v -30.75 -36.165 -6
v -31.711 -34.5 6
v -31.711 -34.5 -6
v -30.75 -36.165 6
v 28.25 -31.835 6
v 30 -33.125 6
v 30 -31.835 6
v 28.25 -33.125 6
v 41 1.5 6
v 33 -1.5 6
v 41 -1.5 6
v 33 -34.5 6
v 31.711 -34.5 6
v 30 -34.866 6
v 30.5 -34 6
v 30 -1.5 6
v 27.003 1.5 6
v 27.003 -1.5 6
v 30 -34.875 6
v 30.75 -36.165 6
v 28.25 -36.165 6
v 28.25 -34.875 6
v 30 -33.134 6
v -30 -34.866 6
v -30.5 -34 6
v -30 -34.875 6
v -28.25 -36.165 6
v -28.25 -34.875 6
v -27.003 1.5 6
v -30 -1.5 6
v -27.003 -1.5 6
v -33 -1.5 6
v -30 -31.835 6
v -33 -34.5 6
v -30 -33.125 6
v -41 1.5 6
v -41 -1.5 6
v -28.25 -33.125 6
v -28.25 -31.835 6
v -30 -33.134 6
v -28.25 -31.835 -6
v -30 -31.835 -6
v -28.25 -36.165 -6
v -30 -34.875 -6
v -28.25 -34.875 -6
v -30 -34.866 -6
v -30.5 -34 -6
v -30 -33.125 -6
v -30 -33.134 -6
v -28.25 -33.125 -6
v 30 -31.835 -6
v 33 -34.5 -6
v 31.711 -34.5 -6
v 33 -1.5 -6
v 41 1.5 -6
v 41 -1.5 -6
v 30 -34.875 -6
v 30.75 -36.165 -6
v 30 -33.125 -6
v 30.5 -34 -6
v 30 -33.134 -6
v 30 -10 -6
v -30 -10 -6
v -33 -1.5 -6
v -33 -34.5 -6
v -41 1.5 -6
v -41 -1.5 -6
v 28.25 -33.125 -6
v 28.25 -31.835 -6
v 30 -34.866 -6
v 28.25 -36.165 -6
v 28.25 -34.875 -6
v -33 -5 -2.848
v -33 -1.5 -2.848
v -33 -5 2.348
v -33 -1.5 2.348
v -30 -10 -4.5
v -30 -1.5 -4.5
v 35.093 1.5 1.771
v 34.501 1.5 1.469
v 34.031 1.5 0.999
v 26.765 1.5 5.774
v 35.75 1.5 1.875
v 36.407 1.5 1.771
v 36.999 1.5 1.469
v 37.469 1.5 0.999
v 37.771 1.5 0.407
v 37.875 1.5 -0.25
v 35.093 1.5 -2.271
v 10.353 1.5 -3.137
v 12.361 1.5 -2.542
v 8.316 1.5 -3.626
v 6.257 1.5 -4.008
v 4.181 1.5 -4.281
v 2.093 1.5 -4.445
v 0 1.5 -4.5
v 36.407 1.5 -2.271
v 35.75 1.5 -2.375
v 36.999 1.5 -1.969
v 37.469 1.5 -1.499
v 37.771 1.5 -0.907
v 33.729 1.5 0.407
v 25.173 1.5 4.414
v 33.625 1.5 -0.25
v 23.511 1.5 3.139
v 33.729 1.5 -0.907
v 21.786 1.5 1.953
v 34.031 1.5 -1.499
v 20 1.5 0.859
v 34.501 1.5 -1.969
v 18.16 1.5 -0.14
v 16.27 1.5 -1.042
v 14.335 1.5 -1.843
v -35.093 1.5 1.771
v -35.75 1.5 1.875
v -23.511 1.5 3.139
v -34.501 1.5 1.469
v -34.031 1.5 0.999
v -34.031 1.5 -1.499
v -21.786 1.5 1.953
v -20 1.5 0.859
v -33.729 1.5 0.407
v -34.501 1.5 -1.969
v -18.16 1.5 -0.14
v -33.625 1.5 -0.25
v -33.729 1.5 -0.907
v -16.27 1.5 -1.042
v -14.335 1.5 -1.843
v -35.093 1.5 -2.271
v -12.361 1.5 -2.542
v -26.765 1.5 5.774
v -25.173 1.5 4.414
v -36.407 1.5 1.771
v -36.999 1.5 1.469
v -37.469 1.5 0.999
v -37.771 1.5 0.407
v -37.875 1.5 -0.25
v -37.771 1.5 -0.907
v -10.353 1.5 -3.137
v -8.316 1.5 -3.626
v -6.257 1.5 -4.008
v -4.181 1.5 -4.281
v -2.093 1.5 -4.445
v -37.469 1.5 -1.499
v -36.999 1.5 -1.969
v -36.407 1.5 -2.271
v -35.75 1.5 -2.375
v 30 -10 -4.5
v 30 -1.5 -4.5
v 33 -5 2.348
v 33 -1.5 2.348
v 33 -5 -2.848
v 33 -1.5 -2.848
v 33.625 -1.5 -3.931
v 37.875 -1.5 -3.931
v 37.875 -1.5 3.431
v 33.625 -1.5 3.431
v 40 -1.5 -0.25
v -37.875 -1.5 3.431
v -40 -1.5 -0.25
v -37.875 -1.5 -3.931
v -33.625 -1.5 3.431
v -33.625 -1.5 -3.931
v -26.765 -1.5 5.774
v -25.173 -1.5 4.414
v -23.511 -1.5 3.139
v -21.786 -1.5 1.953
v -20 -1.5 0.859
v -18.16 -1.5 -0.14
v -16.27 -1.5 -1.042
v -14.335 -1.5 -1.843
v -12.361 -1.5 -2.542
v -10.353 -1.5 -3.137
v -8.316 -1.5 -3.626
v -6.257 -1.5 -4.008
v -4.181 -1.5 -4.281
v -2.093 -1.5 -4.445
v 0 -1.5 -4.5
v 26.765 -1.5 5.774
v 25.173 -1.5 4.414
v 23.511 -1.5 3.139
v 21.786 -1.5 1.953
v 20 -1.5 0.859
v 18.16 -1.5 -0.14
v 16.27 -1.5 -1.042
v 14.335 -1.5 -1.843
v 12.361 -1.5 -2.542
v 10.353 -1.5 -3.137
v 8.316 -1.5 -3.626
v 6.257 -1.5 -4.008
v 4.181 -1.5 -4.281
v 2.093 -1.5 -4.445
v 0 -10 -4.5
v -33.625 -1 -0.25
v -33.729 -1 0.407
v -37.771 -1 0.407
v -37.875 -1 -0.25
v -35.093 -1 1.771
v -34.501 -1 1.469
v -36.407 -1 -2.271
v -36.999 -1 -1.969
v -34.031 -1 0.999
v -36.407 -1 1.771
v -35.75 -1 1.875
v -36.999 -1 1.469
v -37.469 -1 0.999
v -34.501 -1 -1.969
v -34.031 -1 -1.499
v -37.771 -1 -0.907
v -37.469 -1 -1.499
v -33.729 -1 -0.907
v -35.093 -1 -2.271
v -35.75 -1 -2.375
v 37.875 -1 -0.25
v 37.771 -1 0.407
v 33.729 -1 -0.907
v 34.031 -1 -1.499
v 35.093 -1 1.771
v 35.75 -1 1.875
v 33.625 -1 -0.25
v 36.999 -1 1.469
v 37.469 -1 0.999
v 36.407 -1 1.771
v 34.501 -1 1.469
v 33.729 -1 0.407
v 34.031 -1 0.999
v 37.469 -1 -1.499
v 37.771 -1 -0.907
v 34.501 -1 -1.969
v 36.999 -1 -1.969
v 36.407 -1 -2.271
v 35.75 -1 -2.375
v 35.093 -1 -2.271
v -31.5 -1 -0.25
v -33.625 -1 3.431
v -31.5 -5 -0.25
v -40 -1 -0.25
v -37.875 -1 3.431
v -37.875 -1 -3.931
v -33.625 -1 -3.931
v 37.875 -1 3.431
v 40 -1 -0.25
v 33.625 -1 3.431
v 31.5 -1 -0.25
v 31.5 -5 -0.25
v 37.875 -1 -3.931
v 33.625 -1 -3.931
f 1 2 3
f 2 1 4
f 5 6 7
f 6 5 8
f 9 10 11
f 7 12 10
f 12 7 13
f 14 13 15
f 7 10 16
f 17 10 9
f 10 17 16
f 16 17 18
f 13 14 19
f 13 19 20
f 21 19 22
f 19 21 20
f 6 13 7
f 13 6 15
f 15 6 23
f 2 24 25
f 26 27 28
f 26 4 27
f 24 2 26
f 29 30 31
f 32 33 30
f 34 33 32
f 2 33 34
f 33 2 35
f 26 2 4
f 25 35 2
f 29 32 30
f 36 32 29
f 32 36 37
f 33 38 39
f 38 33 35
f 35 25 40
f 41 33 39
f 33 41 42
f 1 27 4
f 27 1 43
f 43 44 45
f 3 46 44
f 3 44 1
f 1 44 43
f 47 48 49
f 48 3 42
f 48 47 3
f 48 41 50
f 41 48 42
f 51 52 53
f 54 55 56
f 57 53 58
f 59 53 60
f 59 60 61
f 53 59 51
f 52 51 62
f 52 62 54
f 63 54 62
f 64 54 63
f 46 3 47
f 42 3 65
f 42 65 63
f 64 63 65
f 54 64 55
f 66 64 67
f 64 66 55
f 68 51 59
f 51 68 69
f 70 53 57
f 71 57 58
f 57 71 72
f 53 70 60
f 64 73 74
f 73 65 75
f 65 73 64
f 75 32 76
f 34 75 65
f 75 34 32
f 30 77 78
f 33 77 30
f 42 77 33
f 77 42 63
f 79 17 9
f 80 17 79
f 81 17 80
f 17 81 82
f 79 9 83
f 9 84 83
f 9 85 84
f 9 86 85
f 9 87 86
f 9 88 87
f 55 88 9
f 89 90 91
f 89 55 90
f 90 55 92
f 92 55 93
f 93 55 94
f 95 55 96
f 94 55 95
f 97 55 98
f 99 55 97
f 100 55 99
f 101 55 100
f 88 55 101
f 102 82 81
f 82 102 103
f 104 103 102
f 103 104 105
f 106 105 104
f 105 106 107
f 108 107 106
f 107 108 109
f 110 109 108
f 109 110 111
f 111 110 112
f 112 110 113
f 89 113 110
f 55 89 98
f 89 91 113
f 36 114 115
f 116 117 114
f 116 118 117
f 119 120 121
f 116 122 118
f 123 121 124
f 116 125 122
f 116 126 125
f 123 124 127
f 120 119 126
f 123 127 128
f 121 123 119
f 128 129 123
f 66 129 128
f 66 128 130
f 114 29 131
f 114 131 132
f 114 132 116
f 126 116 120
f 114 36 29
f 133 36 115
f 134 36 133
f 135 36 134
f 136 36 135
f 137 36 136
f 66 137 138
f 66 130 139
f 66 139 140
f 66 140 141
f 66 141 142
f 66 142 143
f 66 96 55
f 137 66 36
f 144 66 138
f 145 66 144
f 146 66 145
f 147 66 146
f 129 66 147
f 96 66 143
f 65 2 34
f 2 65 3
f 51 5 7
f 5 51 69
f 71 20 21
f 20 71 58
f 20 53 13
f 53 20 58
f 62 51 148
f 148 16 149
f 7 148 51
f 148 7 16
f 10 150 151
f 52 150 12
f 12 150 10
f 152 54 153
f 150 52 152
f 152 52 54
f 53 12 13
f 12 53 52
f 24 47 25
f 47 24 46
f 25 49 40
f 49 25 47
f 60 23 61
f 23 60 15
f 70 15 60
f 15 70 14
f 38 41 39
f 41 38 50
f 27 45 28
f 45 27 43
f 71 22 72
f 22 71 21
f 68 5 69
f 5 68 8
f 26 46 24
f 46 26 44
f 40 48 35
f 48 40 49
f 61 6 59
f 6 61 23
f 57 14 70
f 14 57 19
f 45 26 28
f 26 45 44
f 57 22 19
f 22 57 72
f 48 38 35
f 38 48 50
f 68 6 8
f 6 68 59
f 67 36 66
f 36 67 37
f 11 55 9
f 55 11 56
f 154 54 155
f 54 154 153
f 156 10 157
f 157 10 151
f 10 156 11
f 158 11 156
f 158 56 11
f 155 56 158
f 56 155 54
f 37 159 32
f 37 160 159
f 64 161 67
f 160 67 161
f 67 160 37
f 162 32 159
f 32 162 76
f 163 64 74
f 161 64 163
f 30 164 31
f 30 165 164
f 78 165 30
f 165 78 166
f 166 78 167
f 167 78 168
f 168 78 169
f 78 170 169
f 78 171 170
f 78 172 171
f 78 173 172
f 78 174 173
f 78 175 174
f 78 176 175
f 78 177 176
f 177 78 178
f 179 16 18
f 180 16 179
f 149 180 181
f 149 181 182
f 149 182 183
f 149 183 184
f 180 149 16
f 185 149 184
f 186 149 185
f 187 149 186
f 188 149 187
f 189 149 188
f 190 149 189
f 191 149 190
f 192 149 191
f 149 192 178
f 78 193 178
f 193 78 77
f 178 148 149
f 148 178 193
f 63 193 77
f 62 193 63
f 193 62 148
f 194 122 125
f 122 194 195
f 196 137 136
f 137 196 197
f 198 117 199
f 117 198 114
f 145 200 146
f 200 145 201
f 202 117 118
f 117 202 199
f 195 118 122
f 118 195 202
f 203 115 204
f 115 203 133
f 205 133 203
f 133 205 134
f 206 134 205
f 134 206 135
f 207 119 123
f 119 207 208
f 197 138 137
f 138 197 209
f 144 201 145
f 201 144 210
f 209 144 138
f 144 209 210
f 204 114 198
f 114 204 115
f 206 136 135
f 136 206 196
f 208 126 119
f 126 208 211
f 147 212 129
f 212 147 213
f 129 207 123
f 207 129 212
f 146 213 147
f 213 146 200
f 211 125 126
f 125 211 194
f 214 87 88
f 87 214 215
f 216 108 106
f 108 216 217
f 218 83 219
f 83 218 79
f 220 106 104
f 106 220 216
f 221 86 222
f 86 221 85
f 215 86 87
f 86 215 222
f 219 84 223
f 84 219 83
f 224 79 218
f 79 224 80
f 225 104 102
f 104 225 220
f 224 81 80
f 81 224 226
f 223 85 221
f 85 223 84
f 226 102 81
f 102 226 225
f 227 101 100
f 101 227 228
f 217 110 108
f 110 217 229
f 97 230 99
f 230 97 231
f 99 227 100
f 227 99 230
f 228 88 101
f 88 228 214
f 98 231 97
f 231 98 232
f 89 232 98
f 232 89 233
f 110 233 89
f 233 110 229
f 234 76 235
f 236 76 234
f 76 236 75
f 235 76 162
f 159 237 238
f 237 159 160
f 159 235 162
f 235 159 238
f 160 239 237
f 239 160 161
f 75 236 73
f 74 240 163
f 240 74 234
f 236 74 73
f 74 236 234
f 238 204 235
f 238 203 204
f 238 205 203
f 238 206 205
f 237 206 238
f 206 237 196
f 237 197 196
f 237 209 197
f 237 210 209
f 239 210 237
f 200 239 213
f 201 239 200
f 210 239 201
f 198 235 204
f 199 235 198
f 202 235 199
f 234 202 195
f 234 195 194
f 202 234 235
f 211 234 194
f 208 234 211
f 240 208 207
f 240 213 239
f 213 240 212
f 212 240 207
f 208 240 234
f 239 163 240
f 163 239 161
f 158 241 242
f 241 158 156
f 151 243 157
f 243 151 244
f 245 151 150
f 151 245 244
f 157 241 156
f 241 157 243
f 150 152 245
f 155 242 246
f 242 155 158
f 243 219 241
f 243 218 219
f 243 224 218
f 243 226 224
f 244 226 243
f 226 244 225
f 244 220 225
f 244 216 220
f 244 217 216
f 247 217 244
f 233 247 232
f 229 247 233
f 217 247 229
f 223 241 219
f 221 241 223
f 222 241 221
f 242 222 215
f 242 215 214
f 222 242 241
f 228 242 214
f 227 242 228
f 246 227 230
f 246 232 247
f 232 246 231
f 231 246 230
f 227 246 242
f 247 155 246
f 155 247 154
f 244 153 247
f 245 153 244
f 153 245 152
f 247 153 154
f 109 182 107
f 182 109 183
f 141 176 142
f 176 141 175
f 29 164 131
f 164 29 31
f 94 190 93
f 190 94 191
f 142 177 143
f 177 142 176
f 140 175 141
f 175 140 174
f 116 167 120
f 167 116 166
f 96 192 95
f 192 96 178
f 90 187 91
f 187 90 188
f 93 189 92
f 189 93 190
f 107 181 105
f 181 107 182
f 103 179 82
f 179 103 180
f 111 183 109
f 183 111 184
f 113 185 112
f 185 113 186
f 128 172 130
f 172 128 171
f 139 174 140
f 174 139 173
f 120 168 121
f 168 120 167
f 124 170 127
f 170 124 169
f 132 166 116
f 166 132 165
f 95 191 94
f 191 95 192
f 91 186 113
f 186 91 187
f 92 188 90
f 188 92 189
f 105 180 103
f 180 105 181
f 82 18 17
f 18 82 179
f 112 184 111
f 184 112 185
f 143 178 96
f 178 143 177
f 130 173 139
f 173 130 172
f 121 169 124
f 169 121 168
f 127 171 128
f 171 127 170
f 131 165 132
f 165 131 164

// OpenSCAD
// MOAB - MOther of All fan Brackets
// Design by Marius Gheorghescu, October 2013.
// Update log
// November 5th 2013: 
//  - fan cutout (and the screw holes) can be removed entirely now to produce spacers or PCB feet 
//  - hex nuts resize with screw size (need to vealidate in practice)
//  - cross-brace is configurable and can also be removed


// Typical values 40, 50, 60, 80. Set to 0 to not have a fan cutout.
fan_size = 80;

// Distance between two fan holes. Typical values: 32.00 for 40mm fan, 40.00 for 50mm fan, 50.00 for 60mm fan, 71.50 for 80mm fan, 105.00 for 120mm fan. Set to value larger than fan size to not have any screw holes
fan_hole_spacing = 71.5;

// Use 3.25mm for M3, 4.25mm for M4 and so on
screw_diameter = 4.25;

// width of the PCB. Common values: 60mm for RAMPS, 53.5mm for Arduino, 56mm for Raspberry Pi
pcb_width = 60.0;

// distance from bottom of the fan to PCB. Recommended value for RAMPS fuse clearance: 35mm
bracket_height = 36;

// how long the bracket needs to be, typically 10mm for mini brackets, or close to fan size for full brackets
bracket_length = 12;

// typically 2-4mm
bracket_thickness = 3.0;

// how tall is the cross brace that addds additional strength to the bracket, set to 0 to not have one
cross_bracket = 10;

/* [Hidden] */

// how much to go over the PCB
lip_size = 1.75;

// effective width of the bracket at the top
bracket_width = max(pcb_width, fan_size - 4);

module legs()
{

    difference() {
        union() {

            // left clip
            color([0,0,.5])
            translate([-pcb_width/2 + .5, -bracket_height + 2, 0])
                rotate([0, 0, 180]) 
                    cylinder(r=2.5, h=bracket_length, $fn=6, center=true);

            // left leg
            color([0,0,1])
            translate([-pcb_width/2 - bracket_thickness, -bracket_height + bracket_thickness/2, -bracket_length/2])
                cube([bracket_thickness, bracket_height, bracket_length]);


            // right clip
            color([0,0,.5])
            translate([pcb_width/2 - .5, -bracket_height + 2, 0])
                 rotate([0, 0, 180]) 
                     cylinder(r=2.5, h=bracket_length, $fn=6, center=true);

            // right leg
            color([0,0,1])
           translate([pcb_width/2 , -bracket_height + bracket_thickness/2, -bracket_length/2])
                cube([bracket_thickness, bracket_height, bracket_length]);

        }

        // left cutout
       translate([-pcb_width/2 + .5, -bracket_height + 2, 0])
            rotate([0, 0, 180]) 
                cylinder(r=1, h=bracket_length + 0.1, $fn=6, center=true);

        // right cutout
       translate([pcb_width/2 - .5, -bracket_height + 2, 0])
            cylinder(r=1, h=bracket_length + 0.1, $fn=6, center=true);

        // PCB lips clearance
        translate([0, -bracket_height + bracket_thickness + -.5,0])
            cube([pcb_width - 2*lip_size, 12, bracket_length + 0.1], center=true);

        // PCB
        translate([0, -bracket_height + 2, 0])
            cube([pcb_width, 1.75, bracket_length + 0.1], center=true);

    }

}

module fan_mask()
{
    // M3 screw
    translate([-fan_hole_spacing/2, -fan_hole_spacing/2, 0])
        cylinder(r=screw_diameter/2, h=bracket_height, $fn=20, center=true);
    translate([fan_hole_spacing/2, -fan_hole_spacing/2, 0])
        cylinder(r=screw_diameter/2, h=bracket_height, $fn=20, center=true);
    translate([-fan_hole_spacing/2, fan_hole_spacing/2, 0])
        cylinder(r=screw_diameter/2, h=bracket_height, $fn=20, center=true);
    translate([fan_hole_spacing/2, fan_hole_spacing/2, 0])
        cylinder(r=screw_diameter/2, h=bracket_height, $fn=20, center=true);

    // M3 nuts
    translate([-fan_hole_spacing/2, -fan_hole_spacing/2, 0])
        cylinder(r=screw_diameter, h=4, $fn=6, center=true);
    translate([fan_hole_spacing/2, -fan_hole_spacing/2, 0])
        cylinder(r=screw_diameter, h=4, $fn=6, center=true);
    translate([-fan_hole_spacing/2, fan_hole_spacing/2, 0])
        cylinder(r=screw_diameter, h=4, $fn=6, center=true);
    translate([fan_hole_spacing/2, fan_hole_spacing/2, 0])
        cylinder(r=screw_diameter, h=4, $fn=6, center=true);

    // fan blade clearance
    difference() {
        cylinder(r=fan_size/2, h=bracket_height, $fn=120, center=true);

        // $TODO - add support around the screws if they are too close to the blades
        // also need to add support if the bracket is not wide (tall) enough 
    }
}


module bracket()
{
    difference() {
        union() {

            // fan base
            translate([0, 0, 0])
                cube([bracket_width + 2*bracket_thickness, bracket_thickness, bracket_length], center=true);

            // extra strength 
            color([1,.5,0])
            translate([0, -cross_bracket/2, -bracket_length/2 + bracket_thickness/4])
                cube([pcb_width + 1, cross_bracket, bracket_thickness/2], center=true);

            legs();
        }


        translate([0, -bracket_thickness, -bracket_length/2 + fan_size/2 + bracket_thickness/2])
        rotate([90,0,0])
            fan_mask();

        }
}


module assembly() 
{
    color([1,0,0])
    translate([0, 0, -fan_size/2])
        bracket();

    color([1,0,0])
    //translate([0, 0, fan_size/2])
    rotate([0,180,0])
        bracket();

    color([0,.5,0])
    translate([0, -bracket_height + 2, 0])
        cube([pcb_width - 1, 1.75, fan_size*1.5], center=true);

}

//assembly();
bracket();
//fan_mask();
